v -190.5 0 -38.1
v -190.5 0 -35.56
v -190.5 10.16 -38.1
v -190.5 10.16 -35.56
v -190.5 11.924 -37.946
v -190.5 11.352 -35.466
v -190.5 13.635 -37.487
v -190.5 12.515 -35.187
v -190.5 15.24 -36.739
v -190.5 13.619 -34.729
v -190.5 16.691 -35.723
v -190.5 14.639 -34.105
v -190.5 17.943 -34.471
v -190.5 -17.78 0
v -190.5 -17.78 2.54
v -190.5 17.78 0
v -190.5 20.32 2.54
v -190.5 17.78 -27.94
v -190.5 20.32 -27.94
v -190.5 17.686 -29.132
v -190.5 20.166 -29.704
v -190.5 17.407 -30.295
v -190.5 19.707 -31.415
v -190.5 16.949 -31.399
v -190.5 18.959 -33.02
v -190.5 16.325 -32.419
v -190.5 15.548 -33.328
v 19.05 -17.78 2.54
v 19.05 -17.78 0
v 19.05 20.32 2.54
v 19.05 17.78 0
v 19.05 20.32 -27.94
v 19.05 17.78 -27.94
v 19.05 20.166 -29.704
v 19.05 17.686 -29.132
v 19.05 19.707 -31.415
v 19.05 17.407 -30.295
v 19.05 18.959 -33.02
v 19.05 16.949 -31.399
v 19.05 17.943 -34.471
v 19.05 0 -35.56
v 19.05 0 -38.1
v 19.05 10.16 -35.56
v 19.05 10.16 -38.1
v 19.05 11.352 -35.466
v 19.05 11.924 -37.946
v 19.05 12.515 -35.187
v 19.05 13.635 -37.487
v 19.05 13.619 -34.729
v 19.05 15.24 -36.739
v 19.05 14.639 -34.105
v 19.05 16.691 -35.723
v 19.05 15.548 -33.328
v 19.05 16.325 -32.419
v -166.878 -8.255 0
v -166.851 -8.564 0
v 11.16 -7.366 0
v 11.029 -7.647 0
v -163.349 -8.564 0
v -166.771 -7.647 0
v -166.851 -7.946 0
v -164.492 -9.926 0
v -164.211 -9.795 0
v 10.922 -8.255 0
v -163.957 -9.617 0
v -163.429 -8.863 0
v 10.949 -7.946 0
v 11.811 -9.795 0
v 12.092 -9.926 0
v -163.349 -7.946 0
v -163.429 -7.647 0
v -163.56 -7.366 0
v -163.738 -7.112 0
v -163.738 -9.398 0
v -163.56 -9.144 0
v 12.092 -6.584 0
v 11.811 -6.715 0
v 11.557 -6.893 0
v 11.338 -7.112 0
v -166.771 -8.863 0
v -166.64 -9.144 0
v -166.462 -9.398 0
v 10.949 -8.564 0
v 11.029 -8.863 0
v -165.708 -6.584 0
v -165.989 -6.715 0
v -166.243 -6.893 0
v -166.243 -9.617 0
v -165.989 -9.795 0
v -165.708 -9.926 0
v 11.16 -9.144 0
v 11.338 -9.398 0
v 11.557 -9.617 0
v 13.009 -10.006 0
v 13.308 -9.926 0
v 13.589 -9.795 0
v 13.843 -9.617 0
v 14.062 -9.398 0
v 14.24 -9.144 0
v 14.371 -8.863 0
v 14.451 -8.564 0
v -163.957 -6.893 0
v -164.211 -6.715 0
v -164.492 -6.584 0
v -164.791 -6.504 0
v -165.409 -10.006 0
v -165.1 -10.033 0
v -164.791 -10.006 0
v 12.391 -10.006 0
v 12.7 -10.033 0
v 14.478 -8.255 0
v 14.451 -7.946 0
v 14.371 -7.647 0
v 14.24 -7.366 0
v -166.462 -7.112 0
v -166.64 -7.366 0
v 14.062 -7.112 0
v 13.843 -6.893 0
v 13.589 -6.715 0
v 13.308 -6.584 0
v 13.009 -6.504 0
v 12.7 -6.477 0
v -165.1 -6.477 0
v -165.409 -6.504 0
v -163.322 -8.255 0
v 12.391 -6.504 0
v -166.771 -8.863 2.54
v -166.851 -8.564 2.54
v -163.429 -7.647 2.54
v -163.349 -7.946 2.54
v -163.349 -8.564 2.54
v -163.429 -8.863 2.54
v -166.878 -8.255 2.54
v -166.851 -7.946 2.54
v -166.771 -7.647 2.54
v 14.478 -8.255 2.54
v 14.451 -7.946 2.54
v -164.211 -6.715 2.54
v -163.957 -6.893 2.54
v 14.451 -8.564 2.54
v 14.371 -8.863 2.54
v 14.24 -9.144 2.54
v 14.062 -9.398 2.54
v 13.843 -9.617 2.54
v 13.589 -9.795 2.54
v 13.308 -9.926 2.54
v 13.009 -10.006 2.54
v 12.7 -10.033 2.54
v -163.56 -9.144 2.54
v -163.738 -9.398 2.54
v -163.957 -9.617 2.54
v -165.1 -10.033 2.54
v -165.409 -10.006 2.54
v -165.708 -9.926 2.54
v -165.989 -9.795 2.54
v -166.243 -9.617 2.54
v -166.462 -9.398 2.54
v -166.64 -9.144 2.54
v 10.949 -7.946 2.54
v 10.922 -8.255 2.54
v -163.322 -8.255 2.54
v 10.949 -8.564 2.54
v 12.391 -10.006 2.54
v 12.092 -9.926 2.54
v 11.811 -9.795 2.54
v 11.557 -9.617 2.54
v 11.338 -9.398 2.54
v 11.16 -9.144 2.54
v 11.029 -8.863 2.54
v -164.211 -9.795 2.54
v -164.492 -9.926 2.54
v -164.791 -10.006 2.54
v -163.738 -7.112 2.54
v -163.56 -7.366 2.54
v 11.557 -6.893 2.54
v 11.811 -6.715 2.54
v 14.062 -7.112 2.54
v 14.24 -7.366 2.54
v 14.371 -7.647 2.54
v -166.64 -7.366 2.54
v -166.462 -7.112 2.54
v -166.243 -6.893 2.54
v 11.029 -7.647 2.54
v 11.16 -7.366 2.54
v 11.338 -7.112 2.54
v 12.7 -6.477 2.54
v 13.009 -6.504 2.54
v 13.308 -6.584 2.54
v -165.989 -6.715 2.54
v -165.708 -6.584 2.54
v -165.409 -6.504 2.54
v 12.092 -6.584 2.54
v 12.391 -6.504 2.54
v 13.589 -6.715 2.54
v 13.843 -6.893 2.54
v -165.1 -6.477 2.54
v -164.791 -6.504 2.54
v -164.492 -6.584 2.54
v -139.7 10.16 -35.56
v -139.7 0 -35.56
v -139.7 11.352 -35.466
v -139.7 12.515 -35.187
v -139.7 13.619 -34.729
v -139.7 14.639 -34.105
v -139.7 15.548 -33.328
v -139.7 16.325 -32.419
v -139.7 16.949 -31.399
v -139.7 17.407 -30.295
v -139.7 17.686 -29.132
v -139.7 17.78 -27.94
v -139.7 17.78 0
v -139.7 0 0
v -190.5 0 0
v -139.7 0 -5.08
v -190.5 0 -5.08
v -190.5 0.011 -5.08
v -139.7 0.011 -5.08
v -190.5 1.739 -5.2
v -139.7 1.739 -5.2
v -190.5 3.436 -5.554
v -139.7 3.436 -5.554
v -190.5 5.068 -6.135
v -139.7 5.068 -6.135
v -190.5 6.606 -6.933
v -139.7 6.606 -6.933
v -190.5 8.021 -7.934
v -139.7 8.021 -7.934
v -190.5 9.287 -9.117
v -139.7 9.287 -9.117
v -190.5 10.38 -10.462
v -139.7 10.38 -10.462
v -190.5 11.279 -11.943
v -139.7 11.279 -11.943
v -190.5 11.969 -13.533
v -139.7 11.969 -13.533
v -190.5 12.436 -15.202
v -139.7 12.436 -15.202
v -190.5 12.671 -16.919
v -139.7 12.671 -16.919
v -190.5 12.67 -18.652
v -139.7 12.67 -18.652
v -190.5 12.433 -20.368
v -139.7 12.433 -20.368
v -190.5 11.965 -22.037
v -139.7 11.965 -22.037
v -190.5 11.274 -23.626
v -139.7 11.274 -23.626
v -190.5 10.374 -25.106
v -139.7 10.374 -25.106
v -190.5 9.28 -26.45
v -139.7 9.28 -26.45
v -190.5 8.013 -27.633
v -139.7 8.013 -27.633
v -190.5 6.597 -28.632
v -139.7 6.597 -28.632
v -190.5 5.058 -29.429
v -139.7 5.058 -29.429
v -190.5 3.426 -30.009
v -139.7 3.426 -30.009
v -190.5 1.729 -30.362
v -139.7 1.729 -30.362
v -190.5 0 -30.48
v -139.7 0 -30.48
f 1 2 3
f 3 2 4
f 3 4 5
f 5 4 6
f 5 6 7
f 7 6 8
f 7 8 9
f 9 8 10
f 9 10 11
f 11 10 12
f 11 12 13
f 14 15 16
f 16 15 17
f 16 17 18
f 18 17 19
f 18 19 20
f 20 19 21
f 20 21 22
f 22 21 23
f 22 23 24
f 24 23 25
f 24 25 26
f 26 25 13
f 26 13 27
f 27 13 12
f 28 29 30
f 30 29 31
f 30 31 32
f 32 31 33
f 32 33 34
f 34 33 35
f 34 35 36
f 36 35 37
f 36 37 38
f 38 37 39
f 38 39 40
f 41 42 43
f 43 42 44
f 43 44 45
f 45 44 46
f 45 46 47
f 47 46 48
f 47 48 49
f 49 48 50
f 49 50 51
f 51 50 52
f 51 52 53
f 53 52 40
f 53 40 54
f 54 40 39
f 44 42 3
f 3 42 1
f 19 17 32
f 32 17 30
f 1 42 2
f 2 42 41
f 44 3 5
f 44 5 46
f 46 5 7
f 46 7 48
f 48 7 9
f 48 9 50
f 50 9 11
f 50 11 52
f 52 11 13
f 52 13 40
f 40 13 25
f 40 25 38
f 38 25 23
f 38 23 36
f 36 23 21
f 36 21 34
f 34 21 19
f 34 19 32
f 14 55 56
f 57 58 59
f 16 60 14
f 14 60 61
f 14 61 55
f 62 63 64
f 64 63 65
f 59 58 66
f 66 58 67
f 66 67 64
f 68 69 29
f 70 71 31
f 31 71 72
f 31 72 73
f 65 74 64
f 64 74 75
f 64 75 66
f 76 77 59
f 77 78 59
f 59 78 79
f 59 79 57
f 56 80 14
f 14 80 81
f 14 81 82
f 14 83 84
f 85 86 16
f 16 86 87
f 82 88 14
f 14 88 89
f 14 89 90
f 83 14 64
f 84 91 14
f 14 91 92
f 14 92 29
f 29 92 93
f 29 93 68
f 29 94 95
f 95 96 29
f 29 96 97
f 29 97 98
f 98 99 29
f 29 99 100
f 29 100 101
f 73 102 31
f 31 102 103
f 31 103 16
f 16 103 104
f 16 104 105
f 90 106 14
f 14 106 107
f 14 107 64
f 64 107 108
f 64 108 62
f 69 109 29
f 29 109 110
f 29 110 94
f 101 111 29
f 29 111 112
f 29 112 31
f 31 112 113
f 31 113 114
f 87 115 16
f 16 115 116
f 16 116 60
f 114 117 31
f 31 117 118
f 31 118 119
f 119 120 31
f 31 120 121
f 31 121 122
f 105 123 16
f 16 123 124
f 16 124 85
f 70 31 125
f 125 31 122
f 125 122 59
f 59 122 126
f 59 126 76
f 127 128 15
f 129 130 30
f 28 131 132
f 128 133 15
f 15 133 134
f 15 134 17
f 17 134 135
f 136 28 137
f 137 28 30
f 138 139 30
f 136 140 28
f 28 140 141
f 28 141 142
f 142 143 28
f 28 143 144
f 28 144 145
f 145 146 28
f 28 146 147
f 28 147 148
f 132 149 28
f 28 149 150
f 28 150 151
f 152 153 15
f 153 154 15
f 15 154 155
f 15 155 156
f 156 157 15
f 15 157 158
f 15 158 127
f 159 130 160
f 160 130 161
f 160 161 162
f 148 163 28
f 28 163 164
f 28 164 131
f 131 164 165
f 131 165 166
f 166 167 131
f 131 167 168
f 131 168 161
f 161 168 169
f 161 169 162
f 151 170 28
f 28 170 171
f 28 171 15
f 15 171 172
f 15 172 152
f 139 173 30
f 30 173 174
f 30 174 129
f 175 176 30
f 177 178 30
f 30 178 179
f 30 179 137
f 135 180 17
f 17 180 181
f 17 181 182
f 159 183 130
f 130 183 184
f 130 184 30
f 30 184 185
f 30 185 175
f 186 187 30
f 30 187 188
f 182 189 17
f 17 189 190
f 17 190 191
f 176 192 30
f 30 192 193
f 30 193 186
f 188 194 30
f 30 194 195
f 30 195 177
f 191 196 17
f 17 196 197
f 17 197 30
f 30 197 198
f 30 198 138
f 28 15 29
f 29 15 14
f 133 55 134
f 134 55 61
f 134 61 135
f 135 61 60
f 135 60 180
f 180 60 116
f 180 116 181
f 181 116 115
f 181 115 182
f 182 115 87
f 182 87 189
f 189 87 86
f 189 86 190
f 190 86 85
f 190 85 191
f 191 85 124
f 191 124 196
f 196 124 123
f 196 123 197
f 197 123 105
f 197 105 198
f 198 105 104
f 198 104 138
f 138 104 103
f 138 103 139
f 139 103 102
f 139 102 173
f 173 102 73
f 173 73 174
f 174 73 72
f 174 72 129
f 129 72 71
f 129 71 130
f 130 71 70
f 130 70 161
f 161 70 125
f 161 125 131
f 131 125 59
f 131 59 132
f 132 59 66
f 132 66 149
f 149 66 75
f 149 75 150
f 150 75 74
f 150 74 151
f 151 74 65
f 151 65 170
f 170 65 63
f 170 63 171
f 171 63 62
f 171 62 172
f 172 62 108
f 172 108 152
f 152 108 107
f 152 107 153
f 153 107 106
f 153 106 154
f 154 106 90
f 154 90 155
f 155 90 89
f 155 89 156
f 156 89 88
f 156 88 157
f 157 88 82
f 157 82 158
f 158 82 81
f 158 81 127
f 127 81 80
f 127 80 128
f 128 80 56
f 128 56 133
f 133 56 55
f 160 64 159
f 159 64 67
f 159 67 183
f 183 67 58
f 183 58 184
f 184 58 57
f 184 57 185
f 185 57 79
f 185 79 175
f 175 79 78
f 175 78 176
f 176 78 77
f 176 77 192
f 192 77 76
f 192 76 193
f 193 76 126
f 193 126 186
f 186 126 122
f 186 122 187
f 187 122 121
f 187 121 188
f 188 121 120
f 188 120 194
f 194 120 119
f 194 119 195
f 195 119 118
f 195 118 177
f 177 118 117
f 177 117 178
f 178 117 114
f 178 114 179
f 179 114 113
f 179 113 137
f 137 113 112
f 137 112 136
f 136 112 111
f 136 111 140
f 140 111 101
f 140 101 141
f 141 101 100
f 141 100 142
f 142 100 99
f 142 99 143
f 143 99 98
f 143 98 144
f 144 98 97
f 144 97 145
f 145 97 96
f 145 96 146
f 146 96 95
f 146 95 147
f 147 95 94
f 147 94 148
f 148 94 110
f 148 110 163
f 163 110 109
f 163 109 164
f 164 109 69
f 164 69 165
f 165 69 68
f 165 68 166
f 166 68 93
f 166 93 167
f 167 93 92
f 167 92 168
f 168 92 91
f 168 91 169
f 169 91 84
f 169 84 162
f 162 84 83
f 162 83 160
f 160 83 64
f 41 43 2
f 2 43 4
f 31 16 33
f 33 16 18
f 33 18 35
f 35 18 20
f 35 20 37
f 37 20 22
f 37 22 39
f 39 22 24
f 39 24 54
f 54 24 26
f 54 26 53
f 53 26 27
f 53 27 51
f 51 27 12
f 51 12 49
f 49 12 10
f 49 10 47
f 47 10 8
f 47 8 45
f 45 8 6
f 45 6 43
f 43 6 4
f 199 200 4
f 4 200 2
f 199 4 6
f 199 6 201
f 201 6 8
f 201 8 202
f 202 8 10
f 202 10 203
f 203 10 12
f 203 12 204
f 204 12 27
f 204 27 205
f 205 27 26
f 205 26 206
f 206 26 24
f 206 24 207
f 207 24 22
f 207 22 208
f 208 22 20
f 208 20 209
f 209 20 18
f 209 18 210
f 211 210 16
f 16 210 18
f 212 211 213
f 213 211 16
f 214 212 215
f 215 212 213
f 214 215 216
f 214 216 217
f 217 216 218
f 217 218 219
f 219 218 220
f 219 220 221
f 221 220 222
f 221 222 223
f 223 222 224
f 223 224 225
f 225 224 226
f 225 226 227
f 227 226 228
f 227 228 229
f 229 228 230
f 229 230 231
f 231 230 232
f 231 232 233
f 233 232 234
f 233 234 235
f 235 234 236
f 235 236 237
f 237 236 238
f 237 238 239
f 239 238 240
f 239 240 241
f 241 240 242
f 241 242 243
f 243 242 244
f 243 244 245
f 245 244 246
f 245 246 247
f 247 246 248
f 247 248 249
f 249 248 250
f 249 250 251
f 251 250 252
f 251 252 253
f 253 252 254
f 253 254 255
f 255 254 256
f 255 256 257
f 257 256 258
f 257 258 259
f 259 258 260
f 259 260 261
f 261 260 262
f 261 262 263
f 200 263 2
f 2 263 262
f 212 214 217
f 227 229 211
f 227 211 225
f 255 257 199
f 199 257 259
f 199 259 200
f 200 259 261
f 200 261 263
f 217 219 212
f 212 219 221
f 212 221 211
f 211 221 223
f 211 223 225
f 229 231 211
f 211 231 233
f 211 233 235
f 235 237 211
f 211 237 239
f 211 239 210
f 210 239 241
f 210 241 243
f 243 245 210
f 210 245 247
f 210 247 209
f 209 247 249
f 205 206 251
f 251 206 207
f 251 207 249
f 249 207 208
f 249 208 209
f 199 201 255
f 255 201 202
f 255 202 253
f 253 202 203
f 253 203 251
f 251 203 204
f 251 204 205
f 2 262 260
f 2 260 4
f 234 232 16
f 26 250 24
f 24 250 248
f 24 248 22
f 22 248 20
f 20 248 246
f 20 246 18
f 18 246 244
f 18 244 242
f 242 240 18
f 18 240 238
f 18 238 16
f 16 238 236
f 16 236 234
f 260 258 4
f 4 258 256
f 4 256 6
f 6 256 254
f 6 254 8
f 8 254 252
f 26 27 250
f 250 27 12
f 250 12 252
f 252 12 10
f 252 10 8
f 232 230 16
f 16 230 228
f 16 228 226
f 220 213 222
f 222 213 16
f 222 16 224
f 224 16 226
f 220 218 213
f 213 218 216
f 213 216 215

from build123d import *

# Parameters (mm, degrees)
SKETCH1_W           = 209.55
SKETCH1_H           = 38.1
BOSS_EXTRUDE1_DEPTH = 20.32
FILLET1_R           = 10.16
SKETCH2_W           = 209.55
SKETCH2_H           = 38.1
SKETCH2_R           = 1.778
BOSS_EXTRUDE2_DEPTH = 2.54
SHELL5_START        = -190.5
SHELL5_DEPTH        = 207.01
CUT_EXTRUDE1_DEPTH  = 209.55
BOSS_EXTRUDE3_DEPTH = 50.8


# Read off the part's stored shape, not the designer's step: Shell5
with BuildPart() as part:
    # Sketch1 → Boss-Extrude1 (new body)
    with BuildSketch(Plane(origin=(0, 0, 0), x_dir=(1, 0, 0), z_dir=(0, 1, 0))):
        with Locations((-85.725, 19.05)):
            Rectangle(SKETCH1_W, SKETCH1_H)
    extrude(amount=BOSS_EXTRUDE1_DEPTH)

    # Fillet1
    fillet1_edges = [part.edges().sort_by_distance(p)[0] for p in [
        (-85.725, 20.32, -38.1),
    ]]
    fillet(fillet1_edges, radius=FILLET1_R)

    # Sketch2 → Boss-Extrude2 (add)
    with BuildSketch(Plane.XY):
        with Locations((-85.725, 1.27)):
            Rectangle(SKETCH2_W, SKETCH2_H)
        with Locations((-165.1, -8.255)):
            Circle(SKETCH2_R, mode=Mode.SUBTRACT)
        with Locations((12.7, -8.255)):
            Circle(SKETCH2_R, mode=Mode.SUBTRACT)
    extrude(amount=BOSS_EXTRUDE2_DEPTH)

    # Shell5 outline → Shell5 (cut)
    with BuildSketch(Plane.YZ.offset(SHELL5_START)):
        with BuildLine():
            Line((17.78, -27.94), (17.78, 0))
            Line((17.78, 0), (2.54, 0))
            Line((2.54, 0), (2.54, -35.56))
            Line((2.54, -35.56), (10.16, -35.56))
            ThreePointArc((10.16, -35.56), (15.548153673, -33.328153673), (17.78, -27.94))
        make_face()
    extrude(amount=SHELL5_DEPTH, mode=Mode.SUBTRACT)

    # Sketch3 → Cut-Extrude1 (cut)
    with BuildSketch(Plane.ZY.offset(190.5)):
        with BuildLine():
            Line((0, 0), (-35.56, 0))
            Line((-35.56, 0), (-35.56, 2.54))
            Line((-35.56, 2.54), (-35.56, 10.16))
            ThreePointArc((-35.56, 10.16), (-33.328153673, 15.548153673), (-27.94, 17.78))
            Line((-27.94, 17.78), (0, 17.78))
            Line((0, 17.78), (0, 0))
        make_face()
    extrude(amount=-CUT_EXTRUDE1_DEPTH, mode=Mode.SUBTRACT)


with BuildPart() as body_2:
    # Sketch4 → Boss-Extrude3 (new body)
    with BuildSketch(Plane.ZY.offset(190.5)):
        with BuildLine():
            Line((-35.56, 0), (-30.48, 0))
            add(Edge.make_bspline(
                [(-5.08, 0), (-5.08, 12.7), (-17.78, 12.7), (-30.48, 12.7), (-30.48, 0)],
                knots=[3.141592654, 3.141592654, 3.141592654, 4.71238898, 4.71238898, 6.283185307, 6.283185307, 6.283185307], degree=2, weights=[1, 0.707106781, 1, 0.707106781, 1]))
            Line((-5.08, 0), (0, 0))
            Line((0, 0), (0, 17.78))
            Line((0, 17.78), (-27.94, 17.78))
            ThreePointArc((-27.94, 17.78), (-33.328153673, 15.548153673), (-35.56, 10.16))
            Line((-35.56, 10.16), (-35.56, 0))
        make_face()
    extrude(amount=-BOSS_EXTRUDE3_DEPTH)


solid = Compound([part.part, body_2.part])
